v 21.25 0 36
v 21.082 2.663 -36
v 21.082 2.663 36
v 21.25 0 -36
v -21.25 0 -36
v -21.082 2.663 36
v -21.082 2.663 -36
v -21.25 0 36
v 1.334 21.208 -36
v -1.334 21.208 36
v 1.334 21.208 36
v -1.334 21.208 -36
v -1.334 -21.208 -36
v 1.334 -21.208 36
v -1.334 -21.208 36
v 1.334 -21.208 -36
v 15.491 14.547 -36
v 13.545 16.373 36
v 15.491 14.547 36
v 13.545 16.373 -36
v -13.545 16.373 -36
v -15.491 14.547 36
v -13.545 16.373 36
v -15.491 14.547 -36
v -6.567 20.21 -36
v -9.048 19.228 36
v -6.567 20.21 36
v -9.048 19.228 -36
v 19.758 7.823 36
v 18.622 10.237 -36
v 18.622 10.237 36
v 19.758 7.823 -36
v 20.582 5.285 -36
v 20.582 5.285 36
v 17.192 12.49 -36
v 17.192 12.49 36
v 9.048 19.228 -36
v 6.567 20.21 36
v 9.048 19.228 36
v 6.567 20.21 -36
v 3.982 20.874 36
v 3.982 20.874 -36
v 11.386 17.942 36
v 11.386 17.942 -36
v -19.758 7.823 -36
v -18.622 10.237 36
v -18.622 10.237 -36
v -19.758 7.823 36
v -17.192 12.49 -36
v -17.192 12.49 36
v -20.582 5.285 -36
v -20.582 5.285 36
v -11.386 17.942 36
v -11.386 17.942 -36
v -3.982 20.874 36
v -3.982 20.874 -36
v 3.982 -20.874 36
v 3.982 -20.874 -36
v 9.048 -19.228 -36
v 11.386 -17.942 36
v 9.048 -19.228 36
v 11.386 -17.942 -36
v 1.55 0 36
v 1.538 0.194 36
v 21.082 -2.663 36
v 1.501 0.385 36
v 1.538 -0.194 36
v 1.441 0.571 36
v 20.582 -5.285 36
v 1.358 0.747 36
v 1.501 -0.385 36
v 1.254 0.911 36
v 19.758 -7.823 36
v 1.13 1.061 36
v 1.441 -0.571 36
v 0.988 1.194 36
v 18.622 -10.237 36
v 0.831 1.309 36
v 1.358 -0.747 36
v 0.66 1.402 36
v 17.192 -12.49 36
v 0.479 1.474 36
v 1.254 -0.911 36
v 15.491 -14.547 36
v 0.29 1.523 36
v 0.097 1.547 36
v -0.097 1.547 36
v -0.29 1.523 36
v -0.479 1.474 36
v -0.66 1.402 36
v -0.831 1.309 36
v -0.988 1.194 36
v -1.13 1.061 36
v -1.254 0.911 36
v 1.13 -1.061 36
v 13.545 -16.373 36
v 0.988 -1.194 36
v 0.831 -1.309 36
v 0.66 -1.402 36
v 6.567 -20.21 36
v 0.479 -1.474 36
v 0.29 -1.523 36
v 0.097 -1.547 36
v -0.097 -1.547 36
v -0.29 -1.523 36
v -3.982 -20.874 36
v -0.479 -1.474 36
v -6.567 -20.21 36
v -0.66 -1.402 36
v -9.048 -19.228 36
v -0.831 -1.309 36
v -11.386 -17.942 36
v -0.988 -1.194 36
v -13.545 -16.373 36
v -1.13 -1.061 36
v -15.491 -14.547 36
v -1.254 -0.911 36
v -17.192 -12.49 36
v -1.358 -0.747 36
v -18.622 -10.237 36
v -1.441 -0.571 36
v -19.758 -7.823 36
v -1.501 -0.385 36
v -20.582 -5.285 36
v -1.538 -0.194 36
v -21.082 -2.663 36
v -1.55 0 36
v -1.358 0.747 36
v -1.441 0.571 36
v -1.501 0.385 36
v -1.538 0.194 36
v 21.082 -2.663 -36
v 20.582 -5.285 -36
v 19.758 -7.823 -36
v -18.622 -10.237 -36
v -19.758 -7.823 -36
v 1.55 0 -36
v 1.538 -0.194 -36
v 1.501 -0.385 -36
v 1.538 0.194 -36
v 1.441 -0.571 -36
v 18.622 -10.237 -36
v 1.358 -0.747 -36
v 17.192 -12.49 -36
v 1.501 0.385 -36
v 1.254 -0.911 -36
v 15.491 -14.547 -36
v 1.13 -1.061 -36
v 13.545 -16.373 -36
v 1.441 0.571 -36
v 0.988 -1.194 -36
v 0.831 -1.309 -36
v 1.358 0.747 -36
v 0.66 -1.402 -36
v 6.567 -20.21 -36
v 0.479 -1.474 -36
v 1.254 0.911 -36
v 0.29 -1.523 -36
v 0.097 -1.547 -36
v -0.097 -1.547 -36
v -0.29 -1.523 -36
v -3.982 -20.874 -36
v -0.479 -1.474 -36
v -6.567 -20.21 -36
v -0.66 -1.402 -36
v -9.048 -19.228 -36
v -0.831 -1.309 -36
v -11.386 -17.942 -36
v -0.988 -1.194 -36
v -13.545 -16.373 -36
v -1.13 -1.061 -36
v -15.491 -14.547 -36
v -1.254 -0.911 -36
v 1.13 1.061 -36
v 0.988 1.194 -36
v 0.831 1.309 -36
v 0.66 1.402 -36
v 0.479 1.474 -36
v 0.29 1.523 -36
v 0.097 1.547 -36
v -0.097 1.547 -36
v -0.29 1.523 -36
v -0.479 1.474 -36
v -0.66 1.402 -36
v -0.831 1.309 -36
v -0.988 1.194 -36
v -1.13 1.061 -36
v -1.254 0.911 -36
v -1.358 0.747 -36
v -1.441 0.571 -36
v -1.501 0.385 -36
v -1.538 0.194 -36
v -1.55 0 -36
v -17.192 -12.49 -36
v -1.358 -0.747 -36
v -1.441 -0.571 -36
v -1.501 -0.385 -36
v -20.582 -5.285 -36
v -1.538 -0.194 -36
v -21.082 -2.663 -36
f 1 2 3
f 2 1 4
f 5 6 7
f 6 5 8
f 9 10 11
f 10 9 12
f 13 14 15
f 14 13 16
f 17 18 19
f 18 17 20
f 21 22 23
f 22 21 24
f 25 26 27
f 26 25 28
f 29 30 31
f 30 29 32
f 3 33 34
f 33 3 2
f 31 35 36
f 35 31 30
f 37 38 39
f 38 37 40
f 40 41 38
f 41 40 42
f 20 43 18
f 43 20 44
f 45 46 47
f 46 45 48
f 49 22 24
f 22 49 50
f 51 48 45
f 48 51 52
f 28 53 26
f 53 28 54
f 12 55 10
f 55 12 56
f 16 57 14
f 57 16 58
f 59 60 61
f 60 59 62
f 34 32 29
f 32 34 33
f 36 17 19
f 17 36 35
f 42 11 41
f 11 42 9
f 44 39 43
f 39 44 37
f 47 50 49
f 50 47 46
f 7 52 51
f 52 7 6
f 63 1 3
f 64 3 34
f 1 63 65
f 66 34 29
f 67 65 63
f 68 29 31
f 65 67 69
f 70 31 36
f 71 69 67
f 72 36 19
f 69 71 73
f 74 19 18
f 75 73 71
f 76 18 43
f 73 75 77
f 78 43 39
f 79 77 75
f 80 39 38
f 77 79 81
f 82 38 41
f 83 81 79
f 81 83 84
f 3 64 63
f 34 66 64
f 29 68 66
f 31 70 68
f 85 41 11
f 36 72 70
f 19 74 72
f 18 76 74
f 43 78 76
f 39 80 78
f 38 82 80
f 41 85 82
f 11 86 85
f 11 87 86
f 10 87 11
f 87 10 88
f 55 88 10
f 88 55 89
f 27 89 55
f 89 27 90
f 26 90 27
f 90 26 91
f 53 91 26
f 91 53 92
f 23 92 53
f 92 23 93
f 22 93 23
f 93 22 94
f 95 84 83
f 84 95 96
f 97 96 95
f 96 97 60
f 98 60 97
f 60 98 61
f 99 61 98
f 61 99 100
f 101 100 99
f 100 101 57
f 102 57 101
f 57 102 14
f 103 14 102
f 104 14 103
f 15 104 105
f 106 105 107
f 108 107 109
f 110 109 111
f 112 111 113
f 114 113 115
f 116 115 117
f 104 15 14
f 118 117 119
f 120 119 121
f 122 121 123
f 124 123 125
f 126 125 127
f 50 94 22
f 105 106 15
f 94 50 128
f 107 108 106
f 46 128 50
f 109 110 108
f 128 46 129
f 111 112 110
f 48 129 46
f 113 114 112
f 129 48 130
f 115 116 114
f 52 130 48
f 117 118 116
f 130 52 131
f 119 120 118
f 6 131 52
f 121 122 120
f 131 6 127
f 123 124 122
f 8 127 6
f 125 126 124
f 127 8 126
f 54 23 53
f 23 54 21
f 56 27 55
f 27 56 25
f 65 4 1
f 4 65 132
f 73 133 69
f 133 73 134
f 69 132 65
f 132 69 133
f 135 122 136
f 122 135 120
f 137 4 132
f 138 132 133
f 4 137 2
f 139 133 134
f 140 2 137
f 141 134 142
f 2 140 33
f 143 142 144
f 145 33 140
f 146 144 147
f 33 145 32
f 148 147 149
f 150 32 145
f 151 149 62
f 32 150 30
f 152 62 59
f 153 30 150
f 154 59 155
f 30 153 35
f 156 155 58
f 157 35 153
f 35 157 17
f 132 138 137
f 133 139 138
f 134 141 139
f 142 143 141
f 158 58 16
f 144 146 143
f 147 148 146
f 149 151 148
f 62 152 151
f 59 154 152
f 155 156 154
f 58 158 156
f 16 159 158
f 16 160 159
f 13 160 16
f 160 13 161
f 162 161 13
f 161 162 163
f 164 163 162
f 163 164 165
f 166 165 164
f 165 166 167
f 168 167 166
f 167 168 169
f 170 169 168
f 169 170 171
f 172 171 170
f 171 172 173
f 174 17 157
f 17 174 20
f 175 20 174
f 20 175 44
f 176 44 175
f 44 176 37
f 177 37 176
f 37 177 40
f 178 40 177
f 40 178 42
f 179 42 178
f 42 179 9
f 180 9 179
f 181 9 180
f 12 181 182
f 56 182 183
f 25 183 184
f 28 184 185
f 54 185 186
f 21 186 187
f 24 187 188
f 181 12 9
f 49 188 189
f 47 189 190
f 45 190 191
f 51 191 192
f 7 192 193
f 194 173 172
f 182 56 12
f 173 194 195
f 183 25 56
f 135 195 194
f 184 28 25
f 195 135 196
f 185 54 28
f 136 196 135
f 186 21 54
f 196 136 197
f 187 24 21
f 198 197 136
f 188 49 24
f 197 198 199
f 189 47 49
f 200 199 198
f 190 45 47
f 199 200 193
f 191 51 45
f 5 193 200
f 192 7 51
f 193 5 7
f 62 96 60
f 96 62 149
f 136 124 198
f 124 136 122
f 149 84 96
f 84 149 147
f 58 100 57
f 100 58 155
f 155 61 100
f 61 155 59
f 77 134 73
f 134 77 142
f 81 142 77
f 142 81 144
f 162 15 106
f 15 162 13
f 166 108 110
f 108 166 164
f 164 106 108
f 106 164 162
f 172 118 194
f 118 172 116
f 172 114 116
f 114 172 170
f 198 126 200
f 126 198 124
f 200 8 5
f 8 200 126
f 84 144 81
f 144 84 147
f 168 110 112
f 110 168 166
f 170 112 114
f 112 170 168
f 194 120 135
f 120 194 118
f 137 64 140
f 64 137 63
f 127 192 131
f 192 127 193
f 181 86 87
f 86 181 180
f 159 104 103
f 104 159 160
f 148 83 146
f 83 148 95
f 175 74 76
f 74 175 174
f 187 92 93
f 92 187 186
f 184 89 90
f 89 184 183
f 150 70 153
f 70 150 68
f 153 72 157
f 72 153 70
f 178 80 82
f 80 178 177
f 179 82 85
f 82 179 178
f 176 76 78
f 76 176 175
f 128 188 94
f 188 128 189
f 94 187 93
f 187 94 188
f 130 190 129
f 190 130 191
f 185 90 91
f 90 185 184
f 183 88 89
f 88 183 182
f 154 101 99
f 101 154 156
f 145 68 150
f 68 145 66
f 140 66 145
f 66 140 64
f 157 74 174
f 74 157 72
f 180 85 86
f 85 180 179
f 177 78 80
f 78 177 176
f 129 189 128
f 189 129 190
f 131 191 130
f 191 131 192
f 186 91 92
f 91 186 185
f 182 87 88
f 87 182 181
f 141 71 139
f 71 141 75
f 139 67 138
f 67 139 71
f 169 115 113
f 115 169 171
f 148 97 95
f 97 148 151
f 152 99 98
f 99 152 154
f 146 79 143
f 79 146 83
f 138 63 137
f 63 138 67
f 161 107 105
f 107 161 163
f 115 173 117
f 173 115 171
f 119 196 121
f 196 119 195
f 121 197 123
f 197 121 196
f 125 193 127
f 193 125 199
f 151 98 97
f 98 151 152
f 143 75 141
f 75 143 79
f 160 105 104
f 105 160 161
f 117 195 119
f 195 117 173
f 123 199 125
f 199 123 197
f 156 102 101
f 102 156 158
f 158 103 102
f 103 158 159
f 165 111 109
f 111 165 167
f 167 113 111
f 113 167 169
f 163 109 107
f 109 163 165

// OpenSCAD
$fn = 50;


difference() {
	union() {
		translate(v = [0, 0, -36.0000000000]) {
			cylinder(h = 72, r = 21.2500000000);
		}
	}
	union() {
		translate(v = [0, 0, -100.0000000000]) {
			cylinder(h = 200, r = 1.5500000000);
		}
	}
}
